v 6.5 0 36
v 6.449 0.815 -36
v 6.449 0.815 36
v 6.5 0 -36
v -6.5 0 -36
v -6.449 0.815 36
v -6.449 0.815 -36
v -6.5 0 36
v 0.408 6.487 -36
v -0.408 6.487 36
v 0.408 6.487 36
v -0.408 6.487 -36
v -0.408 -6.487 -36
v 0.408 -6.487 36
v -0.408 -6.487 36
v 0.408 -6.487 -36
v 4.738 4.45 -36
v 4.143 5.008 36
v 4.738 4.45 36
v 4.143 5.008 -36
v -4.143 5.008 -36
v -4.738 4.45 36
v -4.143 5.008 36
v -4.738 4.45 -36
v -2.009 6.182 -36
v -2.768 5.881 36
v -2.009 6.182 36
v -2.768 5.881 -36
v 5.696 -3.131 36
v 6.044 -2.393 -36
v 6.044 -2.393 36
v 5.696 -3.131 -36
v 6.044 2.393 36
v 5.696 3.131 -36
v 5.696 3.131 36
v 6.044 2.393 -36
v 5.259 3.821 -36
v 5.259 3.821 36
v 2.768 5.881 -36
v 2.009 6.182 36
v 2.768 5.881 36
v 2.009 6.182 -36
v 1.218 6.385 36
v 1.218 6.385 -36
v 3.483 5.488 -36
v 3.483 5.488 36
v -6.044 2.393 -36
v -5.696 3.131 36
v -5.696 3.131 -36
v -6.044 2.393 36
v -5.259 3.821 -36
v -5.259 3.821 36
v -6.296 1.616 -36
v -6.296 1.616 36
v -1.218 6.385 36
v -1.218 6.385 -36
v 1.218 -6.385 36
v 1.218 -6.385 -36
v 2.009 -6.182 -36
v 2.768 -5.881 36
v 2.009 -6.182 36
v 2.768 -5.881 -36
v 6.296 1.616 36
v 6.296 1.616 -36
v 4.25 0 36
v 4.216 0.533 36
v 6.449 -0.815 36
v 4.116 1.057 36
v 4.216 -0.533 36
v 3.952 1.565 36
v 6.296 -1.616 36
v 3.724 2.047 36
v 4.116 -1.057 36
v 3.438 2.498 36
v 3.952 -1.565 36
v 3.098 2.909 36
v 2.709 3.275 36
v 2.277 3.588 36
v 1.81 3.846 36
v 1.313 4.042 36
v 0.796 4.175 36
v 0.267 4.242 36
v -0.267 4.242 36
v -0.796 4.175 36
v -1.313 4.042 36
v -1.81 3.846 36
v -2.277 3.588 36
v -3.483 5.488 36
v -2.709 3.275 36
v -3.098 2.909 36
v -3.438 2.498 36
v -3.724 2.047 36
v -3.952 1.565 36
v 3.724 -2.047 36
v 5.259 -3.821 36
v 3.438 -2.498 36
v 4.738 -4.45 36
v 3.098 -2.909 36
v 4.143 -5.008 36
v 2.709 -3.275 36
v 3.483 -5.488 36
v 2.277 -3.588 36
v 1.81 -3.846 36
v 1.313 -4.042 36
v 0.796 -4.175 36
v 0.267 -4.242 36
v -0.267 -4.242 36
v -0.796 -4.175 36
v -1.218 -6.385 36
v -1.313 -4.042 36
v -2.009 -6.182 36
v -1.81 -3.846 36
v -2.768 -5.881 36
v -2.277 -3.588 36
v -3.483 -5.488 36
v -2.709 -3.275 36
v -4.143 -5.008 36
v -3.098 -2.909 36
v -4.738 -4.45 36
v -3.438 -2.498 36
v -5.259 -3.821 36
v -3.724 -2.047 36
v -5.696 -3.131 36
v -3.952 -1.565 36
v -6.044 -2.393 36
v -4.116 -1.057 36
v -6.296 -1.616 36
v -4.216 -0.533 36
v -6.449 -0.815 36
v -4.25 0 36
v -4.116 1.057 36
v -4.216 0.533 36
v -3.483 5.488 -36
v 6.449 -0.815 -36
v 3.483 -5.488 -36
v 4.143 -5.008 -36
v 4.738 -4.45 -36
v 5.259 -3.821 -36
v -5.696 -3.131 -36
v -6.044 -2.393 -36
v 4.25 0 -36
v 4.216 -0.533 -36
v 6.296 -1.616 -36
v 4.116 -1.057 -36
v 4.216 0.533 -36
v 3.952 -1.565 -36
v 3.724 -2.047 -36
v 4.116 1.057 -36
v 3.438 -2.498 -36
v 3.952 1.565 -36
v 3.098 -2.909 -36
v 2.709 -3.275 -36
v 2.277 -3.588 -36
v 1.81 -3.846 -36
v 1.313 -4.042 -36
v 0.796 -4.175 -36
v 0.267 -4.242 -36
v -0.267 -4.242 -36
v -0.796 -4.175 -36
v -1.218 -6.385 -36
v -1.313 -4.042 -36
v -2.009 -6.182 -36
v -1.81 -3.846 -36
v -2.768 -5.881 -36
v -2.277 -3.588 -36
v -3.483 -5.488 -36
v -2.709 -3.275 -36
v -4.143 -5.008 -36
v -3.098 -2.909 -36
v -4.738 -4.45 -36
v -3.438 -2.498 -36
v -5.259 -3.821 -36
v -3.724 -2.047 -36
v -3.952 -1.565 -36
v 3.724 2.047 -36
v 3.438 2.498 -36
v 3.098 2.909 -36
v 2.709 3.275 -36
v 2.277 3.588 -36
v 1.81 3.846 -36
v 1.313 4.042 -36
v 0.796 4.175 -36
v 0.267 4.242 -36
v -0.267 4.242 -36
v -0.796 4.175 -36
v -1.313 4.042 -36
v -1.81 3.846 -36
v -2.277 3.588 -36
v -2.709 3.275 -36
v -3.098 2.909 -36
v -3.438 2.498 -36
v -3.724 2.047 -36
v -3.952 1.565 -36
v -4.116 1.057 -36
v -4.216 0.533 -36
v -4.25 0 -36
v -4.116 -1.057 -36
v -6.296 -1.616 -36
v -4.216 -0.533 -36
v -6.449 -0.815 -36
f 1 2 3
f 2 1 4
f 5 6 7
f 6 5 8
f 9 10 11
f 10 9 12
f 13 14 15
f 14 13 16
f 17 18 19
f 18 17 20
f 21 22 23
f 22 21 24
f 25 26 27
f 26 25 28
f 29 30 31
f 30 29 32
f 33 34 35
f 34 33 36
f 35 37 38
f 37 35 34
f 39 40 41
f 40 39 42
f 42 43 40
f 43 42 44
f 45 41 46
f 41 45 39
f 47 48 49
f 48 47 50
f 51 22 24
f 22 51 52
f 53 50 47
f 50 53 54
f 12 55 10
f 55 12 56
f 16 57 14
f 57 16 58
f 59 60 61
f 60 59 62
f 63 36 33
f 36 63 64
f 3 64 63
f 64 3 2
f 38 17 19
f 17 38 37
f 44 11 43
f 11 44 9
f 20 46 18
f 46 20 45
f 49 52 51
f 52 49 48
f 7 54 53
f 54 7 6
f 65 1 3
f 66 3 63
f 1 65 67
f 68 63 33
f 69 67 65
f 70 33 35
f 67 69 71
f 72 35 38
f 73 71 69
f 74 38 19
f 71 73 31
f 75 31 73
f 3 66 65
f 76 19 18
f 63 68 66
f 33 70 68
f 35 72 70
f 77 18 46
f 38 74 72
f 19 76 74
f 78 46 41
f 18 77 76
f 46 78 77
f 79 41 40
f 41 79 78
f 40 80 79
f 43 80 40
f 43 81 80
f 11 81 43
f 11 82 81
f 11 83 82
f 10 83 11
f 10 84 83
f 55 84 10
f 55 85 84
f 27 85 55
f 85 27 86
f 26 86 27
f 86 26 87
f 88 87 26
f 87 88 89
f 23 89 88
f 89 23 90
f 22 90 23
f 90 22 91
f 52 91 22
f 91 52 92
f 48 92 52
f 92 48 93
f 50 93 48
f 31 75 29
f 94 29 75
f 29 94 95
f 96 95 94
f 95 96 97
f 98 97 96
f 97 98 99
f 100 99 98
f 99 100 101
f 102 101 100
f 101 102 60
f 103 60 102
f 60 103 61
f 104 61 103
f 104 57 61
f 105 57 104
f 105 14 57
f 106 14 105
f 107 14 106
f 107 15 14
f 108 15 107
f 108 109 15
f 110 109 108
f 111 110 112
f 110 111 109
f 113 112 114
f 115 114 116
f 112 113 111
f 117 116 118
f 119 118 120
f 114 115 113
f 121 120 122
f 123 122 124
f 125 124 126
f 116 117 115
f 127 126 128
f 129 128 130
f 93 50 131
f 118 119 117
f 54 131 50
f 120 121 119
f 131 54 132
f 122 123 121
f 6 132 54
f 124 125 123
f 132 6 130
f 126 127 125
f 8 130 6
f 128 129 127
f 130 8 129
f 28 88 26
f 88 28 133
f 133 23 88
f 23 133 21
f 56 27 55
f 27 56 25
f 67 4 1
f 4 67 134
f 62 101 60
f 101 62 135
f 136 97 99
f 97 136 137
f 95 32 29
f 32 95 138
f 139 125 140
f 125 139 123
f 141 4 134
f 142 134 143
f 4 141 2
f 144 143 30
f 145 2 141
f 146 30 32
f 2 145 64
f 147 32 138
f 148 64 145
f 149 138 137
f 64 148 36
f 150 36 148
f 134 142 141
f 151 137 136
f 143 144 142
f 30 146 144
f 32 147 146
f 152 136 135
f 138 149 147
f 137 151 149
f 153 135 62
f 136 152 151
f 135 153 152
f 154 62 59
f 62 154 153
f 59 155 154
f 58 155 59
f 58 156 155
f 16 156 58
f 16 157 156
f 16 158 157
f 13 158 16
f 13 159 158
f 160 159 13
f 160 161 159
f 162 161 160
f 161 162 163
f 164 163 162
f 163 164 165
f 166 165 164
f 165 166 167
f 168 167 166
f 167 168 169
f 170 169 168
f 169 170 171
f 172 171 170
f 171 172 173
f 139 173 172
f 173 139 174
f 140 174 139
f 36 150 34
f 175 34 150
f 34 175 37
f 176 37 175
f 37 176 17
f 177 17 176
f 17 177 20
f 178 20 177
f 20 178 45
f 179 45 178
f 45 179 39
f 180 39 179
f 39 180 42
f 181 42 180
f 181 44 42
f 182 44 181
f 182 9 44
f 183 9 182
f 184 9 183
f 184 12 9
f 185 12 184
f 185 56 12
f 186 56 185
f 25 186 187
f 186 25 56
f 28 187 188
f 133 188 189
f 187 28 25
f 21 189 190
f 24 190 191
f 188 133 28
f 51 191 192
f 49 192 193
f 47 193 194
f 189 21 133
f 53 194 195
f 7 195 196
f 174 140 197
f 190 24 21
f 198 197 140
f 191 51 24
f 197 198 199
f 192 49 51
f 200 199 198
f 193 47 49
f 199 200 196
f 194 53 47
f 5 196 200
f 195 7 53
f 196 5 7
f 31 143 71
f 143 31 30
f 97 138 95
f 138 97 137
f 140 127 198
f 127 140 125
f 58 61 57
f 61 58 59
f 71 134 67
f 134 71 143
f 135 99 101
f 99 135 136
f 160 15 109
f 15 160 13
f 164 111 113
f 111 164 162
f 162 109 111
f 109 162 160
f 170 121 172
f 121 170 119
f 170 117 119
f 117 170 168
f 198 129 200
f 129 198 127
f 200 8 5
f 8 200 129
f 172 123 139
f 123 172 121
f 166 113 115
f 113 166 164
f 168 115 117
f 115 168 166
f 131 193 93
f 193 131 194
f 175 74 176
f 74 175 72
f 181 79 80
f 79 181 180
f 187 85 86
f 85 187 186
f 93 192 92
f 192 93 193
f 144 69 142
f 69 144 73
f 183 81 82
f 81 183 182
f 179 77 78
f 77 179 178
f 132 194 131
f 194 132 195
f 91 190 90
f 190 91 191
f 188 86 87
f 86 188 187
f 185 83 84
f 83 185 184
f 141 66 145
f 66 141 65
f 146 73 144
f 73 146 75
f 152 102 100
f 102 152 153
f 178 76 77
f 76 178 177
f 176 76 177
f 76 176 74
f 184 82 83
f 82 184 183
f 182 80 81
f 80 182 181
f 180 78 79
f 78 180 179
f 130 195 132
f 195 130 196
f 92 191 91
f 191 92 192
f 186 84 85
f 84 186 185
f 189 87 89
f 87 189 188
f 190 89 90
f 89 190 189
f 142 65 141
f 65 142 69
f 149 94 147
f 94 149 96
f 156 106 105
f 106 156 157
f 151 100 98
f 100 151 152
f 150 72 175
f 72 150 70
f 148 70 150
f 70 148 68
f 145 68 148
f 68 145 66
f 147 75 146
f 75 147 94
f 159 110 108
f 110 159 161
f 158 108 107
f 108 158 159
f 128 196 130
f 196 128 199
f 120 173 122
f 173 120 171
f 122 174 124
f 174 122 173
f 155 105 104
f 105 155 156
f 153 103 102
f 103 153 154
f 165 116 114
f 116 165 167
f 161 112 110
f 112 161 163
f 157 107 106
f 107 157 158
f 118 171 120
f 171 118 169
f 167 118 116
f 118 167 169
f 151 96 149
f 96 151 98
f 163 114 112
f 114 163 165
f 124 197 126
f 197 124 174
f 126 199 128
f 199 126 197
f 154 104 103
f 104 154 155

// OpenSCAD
$fn = 50;


difference() {
	union() {
		translate(v = [0, 0, -36.0000000000]) {
			cylinder(h = 72, r = 6.5000000000);
		}
	}
	union() {
		translate(v = [0, 0, -100.0000000000]) {
			cylinder(h = 200, r = 4.2500000000);
		}
	}
}
